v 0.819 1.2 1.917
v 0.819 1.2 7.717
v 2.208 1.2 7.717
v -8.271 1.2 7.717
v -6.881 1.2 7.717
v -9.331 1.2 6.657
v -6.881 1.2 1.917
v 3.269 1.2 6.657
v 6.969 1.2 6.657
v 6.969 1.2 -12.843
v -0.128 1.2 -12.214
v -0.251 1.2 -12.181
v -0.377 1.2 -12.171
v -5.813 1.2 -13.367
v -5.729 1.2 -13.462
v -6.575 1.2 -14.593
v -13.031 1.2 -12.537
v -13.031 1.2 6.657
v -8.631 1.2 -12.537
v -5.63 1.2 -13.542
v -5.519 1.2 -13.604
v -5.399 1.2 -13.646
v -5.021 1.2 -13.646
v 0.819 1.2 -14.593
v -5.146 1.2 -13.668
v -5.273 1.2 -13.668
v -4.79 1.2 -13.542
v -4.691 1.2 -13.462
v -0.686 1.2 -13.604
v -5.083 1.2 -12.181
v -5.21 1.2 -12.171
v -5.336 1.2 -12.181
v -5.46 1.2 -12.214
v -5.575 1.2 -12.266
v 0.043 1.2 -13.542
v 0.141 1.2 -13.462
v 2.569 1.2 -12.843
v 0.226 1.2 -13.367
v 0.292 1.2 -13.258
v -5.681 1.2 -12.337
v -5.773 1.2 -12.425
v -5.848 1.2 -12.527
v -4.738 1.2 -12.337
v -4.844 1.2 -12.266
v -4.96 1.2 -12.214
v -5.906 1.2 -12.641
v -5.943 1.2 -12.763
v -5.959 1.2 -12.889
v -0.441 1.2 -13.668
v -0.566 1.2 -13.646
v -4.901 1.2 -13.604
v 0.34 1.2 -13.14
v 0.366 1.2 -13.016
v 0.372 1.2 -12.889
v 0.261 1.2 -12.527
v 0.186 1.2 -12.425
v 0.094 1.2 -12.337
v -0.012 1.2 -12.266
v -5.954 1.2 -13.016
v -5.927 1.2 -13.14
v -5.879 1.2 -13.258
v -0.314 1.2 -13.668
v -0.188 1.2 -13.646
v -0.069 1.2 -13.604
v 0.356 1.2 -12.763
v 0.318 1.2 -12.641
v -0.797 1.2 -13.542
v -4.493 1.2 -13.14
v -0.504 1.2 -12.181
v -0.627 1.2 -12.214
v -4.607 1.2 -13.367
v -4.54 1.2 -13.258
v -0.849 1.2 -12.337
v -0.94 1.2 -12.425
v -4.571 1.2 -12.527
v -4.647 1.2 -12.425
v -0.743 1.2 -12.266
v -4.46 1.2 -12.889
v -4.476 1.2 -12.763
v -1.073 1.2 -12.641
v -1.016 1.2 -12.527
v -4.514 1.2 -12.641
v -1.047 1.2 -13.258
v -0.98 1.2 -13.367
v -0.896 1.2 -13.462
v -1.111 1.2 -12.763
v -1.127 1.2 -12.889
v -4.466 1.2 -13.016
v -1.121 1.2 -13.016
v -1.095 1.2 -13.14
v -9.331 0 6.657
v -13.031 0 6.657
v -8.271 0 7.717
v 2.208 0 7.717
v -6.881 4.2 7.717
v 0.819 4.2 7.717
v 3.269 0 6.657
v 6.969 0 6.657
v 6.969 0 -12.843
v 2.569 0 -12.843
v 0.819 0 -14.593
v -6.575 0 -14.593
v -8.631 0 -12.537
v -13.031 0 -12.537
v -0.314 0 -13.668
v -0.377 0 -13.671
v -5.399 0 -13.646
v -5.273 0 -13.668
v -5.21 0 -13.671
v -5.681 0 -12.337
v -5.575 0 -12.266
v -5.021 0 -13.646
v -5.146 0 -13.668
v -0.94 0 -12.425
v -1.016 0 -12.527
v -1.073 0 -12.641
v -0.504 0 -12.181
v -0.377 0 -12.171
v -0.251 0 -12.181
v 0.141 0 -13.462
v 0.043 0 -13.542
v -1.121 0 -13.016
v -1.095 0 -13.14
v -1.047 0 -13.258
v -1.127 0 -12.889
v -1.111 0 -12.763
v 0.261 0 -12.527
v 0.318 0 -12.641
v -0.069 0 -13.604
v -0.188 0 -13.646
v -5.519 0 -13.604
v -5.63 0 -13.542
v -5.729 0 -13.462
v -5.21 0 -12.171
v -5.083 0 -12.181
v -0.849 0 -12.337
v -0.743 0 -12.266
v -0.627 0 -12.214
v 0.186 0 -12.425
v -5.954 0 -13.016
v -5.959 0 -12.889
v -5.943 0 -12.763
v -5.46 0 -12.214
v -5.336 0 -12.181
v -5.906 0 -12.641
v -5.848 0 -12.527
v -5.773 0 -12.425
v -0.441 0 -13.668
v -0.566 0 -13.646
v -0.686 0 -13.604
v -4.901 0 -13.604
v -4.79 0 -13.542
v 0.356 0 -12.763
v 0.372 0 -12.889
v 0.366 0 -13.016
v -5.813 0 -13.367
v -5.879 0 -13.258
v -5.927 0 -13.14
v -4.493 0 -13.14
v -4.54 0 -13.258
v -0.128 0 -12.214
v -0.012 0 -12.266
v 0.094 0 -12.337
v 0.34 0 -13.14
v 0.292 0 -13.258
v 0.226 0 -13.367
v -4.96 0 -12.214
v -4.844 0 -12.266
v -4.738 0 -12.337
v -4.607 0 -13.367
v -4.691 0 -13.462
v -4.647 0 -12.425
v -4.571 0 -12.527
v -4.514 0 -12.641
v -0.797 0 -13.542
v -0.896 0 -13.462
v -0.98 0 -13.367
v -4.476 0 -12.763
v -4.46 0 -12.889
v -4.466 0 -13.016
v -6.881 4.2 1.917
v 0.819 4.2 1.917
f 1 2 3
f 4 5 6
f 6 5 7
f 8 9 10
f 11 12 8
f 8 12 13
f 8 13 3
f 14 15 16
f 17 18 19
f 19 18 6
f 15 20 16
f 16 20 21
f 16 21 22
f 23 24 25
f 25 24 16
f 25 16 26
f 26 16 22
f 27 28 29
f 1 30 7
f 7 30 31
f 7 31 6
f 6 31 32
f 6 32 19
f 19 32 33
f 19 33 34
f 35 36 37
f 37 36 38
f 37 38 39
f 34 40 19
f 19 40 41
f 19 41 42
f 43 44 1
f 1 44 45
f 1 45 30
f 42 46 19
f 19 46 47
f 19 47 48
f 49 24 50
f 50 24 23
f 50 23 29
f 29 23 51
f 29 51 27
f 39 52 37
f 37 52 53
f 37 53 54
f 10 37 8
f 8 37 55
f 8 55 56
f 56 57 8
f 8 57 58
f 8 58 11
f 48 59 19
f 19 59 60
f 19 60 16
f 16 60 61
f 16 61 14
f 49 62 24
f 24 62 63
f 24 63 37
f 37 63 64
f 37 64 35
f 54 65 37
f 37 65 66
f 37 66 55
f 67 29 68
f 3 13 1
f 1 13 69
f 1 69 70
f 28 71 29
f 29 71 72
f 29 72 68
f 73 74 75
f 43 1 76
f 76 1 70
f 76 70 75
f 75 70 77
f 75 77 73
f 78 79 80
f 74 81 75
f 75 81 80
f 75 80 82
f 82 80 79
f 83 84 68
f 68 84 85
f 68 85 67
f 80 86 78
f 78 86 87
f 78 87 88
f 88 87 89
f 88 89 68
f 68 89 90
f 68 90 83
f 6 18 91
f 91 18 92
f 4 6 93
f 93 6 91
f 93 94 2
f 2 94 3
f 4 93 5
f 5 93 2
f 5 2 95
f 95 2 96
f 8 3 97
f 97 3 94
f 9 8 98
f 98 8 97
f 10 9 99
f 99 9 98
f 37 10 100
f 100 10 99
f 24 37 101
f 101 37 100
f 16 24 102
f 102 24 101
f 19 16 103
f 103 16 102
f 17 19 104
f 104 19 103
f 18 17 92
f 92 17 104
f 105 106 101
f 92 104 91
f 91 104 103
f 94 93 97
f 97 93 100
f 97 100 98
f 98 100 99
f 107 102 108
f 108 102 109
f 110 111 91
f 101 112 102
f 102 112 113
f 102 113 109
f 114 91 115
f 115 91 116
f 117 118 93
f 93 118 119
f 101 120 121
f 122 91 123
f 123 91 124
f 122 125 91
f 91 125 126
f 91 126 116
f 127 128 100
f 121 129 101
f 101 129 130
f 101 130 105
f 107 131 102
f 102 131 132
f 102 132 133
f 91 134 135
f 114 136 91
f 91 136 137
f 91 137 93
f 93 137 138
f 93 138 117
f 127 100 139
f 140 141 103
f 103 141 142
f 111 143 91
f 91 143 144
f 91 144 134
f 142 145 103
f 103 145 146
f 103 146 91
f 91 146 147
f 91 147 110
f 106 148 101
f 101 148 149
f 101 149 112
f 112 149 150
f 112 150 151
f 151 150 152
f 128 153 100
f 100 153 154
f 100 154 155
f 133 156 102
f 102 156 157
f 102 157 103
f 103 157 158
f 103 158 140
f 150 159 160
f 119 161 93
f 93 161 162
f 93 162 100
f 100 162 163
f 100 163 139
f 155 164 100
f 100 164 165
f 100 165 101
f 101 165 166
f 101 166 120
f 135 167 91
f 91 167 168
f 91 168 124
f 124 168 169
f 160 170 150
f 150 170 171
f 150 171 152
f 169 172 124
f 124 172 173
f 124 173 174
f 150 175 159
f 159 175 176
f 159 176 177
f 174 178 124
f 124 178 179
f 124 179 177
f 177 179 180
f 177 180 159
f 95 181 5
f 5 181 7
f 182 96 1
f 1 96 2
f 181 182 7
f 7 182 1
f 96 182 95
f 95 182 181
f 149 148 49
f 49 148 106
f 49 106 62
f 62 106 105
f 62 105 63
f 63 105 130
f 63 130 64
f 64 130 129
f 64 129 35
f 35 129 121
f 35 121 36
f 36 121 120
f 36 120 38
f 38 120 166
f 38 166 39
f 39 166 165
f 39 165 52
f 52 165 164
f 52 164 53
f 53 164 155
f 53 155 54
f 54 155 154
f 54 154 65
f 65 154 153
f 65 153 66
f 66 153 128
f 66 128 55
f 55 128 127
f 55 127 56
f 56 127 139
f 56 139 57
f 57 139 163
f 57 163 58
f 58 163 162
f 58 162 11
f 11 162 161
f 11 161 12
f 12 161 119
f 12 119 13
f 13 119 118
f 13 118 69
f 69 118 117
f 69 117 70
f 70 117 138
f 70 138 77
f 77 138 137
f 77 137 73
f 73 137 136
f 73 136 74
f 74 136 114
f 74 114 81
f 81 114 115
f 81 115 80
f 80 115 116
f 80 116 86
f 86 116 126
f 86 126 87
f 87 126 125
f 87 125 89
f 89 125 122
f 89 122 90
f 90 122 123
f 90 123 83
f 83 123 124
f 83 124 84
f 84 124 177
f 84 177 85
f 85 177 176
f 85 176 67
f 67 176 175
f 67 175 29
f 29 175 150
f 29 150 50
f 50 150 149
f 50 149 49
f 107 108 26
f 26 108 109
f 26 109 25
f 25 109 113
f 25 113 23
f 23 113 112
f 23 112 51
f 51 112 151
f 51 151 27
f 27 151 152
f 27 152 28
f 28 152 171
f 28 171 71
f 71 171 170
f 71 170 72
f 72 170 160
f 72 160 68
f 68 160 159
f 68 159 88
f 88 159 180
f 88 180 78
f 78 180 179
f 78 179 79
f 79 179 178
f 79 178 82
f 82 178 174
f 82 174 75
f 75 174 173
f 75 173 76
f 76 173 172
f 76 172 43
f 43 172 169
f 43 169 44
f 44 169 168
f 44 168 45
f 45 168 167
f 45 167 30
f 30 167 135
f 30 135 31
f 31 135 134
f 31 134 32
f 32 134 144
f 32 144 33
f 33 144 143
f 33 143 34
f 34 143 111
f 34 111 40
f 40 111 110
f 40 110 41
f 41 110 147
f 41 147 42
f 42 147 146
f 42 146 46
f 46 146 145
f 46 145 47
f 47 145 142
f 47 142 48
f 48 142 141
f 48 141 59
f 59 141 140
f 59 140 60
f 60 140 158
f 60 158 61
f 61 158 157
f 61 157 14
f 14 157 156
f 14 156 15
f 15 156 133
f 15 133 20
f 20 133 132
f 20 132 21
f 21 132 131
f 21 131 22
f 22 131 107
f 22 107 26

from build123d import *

# Parameters (mm, degrees)
BOSS_EXTRUDE1_DEPTH = 1.2
SKETCH2_W           = 7.7
SKETCH2_H           = 5.8
BOSS_EXTRUDE2_DEPTH = 3
SKETCH5_R           = 0.75
CUT_EXTRUDE1_DEPTH  = 3


with BuildPart() as part:
    # Sketch1 → Boss-Extrude1 (new body)
    with BuildSketch(Plane(origin=(0, 0, 0), x_dir=(1, 0, 0), z_dir=(0, 1, 0))):
        Polygon((-13.031308411, -6.656542056), (-13.031308411, 12.537383178), (-8.631308411, 12.537383178), (-6.575233645, 14.593457944), (0.818691589, 14.593457944), (2.568691589, 12.843457944), (6.968691589, 12.843457944), (6.968691589, -6.656542056), (3.268691589, -6.656542056), (2.208031417, -7.717202228), (-8.270648239, -7.717202228), (-9.331308411, -6.656542056), align=None)
    extrude(amount=BOSS_EXTRUDE1_DEPTH)

    # Sketch2 → Boss-Extrude2 (add)
    with BuildSketch(Plane(origin=(0, 1.2, 0), x_dir=(1, 0, 0), z_dir=(0, 1, 0))):
        with Locations((-3.031308411, -4.817202228)):
            Rectangle(SKETCH2_W, SKETCH2_H)
    extrude(amount=BOSS_EXTRUDE2_DEPTH)

    # Sketch5 → Cut-Extrude1 (cut)
    with BuildSketch(Plane(origin=(0, 1.2, 0), x_dir=(1, 0, 0), z_dir=(0, 1, 0))):
        with Locations((-5.209653936, 12.920685244)):
            Circle(SKETCH5_R)
        with Locations((-0.377462837, 12.920685244)):
            Circle(SKETCH5_R)
    extrude(amount=-CUT_EXTRUDE1_DEPTH, mode=Mode.SUBTRACT)


solid = part.part
